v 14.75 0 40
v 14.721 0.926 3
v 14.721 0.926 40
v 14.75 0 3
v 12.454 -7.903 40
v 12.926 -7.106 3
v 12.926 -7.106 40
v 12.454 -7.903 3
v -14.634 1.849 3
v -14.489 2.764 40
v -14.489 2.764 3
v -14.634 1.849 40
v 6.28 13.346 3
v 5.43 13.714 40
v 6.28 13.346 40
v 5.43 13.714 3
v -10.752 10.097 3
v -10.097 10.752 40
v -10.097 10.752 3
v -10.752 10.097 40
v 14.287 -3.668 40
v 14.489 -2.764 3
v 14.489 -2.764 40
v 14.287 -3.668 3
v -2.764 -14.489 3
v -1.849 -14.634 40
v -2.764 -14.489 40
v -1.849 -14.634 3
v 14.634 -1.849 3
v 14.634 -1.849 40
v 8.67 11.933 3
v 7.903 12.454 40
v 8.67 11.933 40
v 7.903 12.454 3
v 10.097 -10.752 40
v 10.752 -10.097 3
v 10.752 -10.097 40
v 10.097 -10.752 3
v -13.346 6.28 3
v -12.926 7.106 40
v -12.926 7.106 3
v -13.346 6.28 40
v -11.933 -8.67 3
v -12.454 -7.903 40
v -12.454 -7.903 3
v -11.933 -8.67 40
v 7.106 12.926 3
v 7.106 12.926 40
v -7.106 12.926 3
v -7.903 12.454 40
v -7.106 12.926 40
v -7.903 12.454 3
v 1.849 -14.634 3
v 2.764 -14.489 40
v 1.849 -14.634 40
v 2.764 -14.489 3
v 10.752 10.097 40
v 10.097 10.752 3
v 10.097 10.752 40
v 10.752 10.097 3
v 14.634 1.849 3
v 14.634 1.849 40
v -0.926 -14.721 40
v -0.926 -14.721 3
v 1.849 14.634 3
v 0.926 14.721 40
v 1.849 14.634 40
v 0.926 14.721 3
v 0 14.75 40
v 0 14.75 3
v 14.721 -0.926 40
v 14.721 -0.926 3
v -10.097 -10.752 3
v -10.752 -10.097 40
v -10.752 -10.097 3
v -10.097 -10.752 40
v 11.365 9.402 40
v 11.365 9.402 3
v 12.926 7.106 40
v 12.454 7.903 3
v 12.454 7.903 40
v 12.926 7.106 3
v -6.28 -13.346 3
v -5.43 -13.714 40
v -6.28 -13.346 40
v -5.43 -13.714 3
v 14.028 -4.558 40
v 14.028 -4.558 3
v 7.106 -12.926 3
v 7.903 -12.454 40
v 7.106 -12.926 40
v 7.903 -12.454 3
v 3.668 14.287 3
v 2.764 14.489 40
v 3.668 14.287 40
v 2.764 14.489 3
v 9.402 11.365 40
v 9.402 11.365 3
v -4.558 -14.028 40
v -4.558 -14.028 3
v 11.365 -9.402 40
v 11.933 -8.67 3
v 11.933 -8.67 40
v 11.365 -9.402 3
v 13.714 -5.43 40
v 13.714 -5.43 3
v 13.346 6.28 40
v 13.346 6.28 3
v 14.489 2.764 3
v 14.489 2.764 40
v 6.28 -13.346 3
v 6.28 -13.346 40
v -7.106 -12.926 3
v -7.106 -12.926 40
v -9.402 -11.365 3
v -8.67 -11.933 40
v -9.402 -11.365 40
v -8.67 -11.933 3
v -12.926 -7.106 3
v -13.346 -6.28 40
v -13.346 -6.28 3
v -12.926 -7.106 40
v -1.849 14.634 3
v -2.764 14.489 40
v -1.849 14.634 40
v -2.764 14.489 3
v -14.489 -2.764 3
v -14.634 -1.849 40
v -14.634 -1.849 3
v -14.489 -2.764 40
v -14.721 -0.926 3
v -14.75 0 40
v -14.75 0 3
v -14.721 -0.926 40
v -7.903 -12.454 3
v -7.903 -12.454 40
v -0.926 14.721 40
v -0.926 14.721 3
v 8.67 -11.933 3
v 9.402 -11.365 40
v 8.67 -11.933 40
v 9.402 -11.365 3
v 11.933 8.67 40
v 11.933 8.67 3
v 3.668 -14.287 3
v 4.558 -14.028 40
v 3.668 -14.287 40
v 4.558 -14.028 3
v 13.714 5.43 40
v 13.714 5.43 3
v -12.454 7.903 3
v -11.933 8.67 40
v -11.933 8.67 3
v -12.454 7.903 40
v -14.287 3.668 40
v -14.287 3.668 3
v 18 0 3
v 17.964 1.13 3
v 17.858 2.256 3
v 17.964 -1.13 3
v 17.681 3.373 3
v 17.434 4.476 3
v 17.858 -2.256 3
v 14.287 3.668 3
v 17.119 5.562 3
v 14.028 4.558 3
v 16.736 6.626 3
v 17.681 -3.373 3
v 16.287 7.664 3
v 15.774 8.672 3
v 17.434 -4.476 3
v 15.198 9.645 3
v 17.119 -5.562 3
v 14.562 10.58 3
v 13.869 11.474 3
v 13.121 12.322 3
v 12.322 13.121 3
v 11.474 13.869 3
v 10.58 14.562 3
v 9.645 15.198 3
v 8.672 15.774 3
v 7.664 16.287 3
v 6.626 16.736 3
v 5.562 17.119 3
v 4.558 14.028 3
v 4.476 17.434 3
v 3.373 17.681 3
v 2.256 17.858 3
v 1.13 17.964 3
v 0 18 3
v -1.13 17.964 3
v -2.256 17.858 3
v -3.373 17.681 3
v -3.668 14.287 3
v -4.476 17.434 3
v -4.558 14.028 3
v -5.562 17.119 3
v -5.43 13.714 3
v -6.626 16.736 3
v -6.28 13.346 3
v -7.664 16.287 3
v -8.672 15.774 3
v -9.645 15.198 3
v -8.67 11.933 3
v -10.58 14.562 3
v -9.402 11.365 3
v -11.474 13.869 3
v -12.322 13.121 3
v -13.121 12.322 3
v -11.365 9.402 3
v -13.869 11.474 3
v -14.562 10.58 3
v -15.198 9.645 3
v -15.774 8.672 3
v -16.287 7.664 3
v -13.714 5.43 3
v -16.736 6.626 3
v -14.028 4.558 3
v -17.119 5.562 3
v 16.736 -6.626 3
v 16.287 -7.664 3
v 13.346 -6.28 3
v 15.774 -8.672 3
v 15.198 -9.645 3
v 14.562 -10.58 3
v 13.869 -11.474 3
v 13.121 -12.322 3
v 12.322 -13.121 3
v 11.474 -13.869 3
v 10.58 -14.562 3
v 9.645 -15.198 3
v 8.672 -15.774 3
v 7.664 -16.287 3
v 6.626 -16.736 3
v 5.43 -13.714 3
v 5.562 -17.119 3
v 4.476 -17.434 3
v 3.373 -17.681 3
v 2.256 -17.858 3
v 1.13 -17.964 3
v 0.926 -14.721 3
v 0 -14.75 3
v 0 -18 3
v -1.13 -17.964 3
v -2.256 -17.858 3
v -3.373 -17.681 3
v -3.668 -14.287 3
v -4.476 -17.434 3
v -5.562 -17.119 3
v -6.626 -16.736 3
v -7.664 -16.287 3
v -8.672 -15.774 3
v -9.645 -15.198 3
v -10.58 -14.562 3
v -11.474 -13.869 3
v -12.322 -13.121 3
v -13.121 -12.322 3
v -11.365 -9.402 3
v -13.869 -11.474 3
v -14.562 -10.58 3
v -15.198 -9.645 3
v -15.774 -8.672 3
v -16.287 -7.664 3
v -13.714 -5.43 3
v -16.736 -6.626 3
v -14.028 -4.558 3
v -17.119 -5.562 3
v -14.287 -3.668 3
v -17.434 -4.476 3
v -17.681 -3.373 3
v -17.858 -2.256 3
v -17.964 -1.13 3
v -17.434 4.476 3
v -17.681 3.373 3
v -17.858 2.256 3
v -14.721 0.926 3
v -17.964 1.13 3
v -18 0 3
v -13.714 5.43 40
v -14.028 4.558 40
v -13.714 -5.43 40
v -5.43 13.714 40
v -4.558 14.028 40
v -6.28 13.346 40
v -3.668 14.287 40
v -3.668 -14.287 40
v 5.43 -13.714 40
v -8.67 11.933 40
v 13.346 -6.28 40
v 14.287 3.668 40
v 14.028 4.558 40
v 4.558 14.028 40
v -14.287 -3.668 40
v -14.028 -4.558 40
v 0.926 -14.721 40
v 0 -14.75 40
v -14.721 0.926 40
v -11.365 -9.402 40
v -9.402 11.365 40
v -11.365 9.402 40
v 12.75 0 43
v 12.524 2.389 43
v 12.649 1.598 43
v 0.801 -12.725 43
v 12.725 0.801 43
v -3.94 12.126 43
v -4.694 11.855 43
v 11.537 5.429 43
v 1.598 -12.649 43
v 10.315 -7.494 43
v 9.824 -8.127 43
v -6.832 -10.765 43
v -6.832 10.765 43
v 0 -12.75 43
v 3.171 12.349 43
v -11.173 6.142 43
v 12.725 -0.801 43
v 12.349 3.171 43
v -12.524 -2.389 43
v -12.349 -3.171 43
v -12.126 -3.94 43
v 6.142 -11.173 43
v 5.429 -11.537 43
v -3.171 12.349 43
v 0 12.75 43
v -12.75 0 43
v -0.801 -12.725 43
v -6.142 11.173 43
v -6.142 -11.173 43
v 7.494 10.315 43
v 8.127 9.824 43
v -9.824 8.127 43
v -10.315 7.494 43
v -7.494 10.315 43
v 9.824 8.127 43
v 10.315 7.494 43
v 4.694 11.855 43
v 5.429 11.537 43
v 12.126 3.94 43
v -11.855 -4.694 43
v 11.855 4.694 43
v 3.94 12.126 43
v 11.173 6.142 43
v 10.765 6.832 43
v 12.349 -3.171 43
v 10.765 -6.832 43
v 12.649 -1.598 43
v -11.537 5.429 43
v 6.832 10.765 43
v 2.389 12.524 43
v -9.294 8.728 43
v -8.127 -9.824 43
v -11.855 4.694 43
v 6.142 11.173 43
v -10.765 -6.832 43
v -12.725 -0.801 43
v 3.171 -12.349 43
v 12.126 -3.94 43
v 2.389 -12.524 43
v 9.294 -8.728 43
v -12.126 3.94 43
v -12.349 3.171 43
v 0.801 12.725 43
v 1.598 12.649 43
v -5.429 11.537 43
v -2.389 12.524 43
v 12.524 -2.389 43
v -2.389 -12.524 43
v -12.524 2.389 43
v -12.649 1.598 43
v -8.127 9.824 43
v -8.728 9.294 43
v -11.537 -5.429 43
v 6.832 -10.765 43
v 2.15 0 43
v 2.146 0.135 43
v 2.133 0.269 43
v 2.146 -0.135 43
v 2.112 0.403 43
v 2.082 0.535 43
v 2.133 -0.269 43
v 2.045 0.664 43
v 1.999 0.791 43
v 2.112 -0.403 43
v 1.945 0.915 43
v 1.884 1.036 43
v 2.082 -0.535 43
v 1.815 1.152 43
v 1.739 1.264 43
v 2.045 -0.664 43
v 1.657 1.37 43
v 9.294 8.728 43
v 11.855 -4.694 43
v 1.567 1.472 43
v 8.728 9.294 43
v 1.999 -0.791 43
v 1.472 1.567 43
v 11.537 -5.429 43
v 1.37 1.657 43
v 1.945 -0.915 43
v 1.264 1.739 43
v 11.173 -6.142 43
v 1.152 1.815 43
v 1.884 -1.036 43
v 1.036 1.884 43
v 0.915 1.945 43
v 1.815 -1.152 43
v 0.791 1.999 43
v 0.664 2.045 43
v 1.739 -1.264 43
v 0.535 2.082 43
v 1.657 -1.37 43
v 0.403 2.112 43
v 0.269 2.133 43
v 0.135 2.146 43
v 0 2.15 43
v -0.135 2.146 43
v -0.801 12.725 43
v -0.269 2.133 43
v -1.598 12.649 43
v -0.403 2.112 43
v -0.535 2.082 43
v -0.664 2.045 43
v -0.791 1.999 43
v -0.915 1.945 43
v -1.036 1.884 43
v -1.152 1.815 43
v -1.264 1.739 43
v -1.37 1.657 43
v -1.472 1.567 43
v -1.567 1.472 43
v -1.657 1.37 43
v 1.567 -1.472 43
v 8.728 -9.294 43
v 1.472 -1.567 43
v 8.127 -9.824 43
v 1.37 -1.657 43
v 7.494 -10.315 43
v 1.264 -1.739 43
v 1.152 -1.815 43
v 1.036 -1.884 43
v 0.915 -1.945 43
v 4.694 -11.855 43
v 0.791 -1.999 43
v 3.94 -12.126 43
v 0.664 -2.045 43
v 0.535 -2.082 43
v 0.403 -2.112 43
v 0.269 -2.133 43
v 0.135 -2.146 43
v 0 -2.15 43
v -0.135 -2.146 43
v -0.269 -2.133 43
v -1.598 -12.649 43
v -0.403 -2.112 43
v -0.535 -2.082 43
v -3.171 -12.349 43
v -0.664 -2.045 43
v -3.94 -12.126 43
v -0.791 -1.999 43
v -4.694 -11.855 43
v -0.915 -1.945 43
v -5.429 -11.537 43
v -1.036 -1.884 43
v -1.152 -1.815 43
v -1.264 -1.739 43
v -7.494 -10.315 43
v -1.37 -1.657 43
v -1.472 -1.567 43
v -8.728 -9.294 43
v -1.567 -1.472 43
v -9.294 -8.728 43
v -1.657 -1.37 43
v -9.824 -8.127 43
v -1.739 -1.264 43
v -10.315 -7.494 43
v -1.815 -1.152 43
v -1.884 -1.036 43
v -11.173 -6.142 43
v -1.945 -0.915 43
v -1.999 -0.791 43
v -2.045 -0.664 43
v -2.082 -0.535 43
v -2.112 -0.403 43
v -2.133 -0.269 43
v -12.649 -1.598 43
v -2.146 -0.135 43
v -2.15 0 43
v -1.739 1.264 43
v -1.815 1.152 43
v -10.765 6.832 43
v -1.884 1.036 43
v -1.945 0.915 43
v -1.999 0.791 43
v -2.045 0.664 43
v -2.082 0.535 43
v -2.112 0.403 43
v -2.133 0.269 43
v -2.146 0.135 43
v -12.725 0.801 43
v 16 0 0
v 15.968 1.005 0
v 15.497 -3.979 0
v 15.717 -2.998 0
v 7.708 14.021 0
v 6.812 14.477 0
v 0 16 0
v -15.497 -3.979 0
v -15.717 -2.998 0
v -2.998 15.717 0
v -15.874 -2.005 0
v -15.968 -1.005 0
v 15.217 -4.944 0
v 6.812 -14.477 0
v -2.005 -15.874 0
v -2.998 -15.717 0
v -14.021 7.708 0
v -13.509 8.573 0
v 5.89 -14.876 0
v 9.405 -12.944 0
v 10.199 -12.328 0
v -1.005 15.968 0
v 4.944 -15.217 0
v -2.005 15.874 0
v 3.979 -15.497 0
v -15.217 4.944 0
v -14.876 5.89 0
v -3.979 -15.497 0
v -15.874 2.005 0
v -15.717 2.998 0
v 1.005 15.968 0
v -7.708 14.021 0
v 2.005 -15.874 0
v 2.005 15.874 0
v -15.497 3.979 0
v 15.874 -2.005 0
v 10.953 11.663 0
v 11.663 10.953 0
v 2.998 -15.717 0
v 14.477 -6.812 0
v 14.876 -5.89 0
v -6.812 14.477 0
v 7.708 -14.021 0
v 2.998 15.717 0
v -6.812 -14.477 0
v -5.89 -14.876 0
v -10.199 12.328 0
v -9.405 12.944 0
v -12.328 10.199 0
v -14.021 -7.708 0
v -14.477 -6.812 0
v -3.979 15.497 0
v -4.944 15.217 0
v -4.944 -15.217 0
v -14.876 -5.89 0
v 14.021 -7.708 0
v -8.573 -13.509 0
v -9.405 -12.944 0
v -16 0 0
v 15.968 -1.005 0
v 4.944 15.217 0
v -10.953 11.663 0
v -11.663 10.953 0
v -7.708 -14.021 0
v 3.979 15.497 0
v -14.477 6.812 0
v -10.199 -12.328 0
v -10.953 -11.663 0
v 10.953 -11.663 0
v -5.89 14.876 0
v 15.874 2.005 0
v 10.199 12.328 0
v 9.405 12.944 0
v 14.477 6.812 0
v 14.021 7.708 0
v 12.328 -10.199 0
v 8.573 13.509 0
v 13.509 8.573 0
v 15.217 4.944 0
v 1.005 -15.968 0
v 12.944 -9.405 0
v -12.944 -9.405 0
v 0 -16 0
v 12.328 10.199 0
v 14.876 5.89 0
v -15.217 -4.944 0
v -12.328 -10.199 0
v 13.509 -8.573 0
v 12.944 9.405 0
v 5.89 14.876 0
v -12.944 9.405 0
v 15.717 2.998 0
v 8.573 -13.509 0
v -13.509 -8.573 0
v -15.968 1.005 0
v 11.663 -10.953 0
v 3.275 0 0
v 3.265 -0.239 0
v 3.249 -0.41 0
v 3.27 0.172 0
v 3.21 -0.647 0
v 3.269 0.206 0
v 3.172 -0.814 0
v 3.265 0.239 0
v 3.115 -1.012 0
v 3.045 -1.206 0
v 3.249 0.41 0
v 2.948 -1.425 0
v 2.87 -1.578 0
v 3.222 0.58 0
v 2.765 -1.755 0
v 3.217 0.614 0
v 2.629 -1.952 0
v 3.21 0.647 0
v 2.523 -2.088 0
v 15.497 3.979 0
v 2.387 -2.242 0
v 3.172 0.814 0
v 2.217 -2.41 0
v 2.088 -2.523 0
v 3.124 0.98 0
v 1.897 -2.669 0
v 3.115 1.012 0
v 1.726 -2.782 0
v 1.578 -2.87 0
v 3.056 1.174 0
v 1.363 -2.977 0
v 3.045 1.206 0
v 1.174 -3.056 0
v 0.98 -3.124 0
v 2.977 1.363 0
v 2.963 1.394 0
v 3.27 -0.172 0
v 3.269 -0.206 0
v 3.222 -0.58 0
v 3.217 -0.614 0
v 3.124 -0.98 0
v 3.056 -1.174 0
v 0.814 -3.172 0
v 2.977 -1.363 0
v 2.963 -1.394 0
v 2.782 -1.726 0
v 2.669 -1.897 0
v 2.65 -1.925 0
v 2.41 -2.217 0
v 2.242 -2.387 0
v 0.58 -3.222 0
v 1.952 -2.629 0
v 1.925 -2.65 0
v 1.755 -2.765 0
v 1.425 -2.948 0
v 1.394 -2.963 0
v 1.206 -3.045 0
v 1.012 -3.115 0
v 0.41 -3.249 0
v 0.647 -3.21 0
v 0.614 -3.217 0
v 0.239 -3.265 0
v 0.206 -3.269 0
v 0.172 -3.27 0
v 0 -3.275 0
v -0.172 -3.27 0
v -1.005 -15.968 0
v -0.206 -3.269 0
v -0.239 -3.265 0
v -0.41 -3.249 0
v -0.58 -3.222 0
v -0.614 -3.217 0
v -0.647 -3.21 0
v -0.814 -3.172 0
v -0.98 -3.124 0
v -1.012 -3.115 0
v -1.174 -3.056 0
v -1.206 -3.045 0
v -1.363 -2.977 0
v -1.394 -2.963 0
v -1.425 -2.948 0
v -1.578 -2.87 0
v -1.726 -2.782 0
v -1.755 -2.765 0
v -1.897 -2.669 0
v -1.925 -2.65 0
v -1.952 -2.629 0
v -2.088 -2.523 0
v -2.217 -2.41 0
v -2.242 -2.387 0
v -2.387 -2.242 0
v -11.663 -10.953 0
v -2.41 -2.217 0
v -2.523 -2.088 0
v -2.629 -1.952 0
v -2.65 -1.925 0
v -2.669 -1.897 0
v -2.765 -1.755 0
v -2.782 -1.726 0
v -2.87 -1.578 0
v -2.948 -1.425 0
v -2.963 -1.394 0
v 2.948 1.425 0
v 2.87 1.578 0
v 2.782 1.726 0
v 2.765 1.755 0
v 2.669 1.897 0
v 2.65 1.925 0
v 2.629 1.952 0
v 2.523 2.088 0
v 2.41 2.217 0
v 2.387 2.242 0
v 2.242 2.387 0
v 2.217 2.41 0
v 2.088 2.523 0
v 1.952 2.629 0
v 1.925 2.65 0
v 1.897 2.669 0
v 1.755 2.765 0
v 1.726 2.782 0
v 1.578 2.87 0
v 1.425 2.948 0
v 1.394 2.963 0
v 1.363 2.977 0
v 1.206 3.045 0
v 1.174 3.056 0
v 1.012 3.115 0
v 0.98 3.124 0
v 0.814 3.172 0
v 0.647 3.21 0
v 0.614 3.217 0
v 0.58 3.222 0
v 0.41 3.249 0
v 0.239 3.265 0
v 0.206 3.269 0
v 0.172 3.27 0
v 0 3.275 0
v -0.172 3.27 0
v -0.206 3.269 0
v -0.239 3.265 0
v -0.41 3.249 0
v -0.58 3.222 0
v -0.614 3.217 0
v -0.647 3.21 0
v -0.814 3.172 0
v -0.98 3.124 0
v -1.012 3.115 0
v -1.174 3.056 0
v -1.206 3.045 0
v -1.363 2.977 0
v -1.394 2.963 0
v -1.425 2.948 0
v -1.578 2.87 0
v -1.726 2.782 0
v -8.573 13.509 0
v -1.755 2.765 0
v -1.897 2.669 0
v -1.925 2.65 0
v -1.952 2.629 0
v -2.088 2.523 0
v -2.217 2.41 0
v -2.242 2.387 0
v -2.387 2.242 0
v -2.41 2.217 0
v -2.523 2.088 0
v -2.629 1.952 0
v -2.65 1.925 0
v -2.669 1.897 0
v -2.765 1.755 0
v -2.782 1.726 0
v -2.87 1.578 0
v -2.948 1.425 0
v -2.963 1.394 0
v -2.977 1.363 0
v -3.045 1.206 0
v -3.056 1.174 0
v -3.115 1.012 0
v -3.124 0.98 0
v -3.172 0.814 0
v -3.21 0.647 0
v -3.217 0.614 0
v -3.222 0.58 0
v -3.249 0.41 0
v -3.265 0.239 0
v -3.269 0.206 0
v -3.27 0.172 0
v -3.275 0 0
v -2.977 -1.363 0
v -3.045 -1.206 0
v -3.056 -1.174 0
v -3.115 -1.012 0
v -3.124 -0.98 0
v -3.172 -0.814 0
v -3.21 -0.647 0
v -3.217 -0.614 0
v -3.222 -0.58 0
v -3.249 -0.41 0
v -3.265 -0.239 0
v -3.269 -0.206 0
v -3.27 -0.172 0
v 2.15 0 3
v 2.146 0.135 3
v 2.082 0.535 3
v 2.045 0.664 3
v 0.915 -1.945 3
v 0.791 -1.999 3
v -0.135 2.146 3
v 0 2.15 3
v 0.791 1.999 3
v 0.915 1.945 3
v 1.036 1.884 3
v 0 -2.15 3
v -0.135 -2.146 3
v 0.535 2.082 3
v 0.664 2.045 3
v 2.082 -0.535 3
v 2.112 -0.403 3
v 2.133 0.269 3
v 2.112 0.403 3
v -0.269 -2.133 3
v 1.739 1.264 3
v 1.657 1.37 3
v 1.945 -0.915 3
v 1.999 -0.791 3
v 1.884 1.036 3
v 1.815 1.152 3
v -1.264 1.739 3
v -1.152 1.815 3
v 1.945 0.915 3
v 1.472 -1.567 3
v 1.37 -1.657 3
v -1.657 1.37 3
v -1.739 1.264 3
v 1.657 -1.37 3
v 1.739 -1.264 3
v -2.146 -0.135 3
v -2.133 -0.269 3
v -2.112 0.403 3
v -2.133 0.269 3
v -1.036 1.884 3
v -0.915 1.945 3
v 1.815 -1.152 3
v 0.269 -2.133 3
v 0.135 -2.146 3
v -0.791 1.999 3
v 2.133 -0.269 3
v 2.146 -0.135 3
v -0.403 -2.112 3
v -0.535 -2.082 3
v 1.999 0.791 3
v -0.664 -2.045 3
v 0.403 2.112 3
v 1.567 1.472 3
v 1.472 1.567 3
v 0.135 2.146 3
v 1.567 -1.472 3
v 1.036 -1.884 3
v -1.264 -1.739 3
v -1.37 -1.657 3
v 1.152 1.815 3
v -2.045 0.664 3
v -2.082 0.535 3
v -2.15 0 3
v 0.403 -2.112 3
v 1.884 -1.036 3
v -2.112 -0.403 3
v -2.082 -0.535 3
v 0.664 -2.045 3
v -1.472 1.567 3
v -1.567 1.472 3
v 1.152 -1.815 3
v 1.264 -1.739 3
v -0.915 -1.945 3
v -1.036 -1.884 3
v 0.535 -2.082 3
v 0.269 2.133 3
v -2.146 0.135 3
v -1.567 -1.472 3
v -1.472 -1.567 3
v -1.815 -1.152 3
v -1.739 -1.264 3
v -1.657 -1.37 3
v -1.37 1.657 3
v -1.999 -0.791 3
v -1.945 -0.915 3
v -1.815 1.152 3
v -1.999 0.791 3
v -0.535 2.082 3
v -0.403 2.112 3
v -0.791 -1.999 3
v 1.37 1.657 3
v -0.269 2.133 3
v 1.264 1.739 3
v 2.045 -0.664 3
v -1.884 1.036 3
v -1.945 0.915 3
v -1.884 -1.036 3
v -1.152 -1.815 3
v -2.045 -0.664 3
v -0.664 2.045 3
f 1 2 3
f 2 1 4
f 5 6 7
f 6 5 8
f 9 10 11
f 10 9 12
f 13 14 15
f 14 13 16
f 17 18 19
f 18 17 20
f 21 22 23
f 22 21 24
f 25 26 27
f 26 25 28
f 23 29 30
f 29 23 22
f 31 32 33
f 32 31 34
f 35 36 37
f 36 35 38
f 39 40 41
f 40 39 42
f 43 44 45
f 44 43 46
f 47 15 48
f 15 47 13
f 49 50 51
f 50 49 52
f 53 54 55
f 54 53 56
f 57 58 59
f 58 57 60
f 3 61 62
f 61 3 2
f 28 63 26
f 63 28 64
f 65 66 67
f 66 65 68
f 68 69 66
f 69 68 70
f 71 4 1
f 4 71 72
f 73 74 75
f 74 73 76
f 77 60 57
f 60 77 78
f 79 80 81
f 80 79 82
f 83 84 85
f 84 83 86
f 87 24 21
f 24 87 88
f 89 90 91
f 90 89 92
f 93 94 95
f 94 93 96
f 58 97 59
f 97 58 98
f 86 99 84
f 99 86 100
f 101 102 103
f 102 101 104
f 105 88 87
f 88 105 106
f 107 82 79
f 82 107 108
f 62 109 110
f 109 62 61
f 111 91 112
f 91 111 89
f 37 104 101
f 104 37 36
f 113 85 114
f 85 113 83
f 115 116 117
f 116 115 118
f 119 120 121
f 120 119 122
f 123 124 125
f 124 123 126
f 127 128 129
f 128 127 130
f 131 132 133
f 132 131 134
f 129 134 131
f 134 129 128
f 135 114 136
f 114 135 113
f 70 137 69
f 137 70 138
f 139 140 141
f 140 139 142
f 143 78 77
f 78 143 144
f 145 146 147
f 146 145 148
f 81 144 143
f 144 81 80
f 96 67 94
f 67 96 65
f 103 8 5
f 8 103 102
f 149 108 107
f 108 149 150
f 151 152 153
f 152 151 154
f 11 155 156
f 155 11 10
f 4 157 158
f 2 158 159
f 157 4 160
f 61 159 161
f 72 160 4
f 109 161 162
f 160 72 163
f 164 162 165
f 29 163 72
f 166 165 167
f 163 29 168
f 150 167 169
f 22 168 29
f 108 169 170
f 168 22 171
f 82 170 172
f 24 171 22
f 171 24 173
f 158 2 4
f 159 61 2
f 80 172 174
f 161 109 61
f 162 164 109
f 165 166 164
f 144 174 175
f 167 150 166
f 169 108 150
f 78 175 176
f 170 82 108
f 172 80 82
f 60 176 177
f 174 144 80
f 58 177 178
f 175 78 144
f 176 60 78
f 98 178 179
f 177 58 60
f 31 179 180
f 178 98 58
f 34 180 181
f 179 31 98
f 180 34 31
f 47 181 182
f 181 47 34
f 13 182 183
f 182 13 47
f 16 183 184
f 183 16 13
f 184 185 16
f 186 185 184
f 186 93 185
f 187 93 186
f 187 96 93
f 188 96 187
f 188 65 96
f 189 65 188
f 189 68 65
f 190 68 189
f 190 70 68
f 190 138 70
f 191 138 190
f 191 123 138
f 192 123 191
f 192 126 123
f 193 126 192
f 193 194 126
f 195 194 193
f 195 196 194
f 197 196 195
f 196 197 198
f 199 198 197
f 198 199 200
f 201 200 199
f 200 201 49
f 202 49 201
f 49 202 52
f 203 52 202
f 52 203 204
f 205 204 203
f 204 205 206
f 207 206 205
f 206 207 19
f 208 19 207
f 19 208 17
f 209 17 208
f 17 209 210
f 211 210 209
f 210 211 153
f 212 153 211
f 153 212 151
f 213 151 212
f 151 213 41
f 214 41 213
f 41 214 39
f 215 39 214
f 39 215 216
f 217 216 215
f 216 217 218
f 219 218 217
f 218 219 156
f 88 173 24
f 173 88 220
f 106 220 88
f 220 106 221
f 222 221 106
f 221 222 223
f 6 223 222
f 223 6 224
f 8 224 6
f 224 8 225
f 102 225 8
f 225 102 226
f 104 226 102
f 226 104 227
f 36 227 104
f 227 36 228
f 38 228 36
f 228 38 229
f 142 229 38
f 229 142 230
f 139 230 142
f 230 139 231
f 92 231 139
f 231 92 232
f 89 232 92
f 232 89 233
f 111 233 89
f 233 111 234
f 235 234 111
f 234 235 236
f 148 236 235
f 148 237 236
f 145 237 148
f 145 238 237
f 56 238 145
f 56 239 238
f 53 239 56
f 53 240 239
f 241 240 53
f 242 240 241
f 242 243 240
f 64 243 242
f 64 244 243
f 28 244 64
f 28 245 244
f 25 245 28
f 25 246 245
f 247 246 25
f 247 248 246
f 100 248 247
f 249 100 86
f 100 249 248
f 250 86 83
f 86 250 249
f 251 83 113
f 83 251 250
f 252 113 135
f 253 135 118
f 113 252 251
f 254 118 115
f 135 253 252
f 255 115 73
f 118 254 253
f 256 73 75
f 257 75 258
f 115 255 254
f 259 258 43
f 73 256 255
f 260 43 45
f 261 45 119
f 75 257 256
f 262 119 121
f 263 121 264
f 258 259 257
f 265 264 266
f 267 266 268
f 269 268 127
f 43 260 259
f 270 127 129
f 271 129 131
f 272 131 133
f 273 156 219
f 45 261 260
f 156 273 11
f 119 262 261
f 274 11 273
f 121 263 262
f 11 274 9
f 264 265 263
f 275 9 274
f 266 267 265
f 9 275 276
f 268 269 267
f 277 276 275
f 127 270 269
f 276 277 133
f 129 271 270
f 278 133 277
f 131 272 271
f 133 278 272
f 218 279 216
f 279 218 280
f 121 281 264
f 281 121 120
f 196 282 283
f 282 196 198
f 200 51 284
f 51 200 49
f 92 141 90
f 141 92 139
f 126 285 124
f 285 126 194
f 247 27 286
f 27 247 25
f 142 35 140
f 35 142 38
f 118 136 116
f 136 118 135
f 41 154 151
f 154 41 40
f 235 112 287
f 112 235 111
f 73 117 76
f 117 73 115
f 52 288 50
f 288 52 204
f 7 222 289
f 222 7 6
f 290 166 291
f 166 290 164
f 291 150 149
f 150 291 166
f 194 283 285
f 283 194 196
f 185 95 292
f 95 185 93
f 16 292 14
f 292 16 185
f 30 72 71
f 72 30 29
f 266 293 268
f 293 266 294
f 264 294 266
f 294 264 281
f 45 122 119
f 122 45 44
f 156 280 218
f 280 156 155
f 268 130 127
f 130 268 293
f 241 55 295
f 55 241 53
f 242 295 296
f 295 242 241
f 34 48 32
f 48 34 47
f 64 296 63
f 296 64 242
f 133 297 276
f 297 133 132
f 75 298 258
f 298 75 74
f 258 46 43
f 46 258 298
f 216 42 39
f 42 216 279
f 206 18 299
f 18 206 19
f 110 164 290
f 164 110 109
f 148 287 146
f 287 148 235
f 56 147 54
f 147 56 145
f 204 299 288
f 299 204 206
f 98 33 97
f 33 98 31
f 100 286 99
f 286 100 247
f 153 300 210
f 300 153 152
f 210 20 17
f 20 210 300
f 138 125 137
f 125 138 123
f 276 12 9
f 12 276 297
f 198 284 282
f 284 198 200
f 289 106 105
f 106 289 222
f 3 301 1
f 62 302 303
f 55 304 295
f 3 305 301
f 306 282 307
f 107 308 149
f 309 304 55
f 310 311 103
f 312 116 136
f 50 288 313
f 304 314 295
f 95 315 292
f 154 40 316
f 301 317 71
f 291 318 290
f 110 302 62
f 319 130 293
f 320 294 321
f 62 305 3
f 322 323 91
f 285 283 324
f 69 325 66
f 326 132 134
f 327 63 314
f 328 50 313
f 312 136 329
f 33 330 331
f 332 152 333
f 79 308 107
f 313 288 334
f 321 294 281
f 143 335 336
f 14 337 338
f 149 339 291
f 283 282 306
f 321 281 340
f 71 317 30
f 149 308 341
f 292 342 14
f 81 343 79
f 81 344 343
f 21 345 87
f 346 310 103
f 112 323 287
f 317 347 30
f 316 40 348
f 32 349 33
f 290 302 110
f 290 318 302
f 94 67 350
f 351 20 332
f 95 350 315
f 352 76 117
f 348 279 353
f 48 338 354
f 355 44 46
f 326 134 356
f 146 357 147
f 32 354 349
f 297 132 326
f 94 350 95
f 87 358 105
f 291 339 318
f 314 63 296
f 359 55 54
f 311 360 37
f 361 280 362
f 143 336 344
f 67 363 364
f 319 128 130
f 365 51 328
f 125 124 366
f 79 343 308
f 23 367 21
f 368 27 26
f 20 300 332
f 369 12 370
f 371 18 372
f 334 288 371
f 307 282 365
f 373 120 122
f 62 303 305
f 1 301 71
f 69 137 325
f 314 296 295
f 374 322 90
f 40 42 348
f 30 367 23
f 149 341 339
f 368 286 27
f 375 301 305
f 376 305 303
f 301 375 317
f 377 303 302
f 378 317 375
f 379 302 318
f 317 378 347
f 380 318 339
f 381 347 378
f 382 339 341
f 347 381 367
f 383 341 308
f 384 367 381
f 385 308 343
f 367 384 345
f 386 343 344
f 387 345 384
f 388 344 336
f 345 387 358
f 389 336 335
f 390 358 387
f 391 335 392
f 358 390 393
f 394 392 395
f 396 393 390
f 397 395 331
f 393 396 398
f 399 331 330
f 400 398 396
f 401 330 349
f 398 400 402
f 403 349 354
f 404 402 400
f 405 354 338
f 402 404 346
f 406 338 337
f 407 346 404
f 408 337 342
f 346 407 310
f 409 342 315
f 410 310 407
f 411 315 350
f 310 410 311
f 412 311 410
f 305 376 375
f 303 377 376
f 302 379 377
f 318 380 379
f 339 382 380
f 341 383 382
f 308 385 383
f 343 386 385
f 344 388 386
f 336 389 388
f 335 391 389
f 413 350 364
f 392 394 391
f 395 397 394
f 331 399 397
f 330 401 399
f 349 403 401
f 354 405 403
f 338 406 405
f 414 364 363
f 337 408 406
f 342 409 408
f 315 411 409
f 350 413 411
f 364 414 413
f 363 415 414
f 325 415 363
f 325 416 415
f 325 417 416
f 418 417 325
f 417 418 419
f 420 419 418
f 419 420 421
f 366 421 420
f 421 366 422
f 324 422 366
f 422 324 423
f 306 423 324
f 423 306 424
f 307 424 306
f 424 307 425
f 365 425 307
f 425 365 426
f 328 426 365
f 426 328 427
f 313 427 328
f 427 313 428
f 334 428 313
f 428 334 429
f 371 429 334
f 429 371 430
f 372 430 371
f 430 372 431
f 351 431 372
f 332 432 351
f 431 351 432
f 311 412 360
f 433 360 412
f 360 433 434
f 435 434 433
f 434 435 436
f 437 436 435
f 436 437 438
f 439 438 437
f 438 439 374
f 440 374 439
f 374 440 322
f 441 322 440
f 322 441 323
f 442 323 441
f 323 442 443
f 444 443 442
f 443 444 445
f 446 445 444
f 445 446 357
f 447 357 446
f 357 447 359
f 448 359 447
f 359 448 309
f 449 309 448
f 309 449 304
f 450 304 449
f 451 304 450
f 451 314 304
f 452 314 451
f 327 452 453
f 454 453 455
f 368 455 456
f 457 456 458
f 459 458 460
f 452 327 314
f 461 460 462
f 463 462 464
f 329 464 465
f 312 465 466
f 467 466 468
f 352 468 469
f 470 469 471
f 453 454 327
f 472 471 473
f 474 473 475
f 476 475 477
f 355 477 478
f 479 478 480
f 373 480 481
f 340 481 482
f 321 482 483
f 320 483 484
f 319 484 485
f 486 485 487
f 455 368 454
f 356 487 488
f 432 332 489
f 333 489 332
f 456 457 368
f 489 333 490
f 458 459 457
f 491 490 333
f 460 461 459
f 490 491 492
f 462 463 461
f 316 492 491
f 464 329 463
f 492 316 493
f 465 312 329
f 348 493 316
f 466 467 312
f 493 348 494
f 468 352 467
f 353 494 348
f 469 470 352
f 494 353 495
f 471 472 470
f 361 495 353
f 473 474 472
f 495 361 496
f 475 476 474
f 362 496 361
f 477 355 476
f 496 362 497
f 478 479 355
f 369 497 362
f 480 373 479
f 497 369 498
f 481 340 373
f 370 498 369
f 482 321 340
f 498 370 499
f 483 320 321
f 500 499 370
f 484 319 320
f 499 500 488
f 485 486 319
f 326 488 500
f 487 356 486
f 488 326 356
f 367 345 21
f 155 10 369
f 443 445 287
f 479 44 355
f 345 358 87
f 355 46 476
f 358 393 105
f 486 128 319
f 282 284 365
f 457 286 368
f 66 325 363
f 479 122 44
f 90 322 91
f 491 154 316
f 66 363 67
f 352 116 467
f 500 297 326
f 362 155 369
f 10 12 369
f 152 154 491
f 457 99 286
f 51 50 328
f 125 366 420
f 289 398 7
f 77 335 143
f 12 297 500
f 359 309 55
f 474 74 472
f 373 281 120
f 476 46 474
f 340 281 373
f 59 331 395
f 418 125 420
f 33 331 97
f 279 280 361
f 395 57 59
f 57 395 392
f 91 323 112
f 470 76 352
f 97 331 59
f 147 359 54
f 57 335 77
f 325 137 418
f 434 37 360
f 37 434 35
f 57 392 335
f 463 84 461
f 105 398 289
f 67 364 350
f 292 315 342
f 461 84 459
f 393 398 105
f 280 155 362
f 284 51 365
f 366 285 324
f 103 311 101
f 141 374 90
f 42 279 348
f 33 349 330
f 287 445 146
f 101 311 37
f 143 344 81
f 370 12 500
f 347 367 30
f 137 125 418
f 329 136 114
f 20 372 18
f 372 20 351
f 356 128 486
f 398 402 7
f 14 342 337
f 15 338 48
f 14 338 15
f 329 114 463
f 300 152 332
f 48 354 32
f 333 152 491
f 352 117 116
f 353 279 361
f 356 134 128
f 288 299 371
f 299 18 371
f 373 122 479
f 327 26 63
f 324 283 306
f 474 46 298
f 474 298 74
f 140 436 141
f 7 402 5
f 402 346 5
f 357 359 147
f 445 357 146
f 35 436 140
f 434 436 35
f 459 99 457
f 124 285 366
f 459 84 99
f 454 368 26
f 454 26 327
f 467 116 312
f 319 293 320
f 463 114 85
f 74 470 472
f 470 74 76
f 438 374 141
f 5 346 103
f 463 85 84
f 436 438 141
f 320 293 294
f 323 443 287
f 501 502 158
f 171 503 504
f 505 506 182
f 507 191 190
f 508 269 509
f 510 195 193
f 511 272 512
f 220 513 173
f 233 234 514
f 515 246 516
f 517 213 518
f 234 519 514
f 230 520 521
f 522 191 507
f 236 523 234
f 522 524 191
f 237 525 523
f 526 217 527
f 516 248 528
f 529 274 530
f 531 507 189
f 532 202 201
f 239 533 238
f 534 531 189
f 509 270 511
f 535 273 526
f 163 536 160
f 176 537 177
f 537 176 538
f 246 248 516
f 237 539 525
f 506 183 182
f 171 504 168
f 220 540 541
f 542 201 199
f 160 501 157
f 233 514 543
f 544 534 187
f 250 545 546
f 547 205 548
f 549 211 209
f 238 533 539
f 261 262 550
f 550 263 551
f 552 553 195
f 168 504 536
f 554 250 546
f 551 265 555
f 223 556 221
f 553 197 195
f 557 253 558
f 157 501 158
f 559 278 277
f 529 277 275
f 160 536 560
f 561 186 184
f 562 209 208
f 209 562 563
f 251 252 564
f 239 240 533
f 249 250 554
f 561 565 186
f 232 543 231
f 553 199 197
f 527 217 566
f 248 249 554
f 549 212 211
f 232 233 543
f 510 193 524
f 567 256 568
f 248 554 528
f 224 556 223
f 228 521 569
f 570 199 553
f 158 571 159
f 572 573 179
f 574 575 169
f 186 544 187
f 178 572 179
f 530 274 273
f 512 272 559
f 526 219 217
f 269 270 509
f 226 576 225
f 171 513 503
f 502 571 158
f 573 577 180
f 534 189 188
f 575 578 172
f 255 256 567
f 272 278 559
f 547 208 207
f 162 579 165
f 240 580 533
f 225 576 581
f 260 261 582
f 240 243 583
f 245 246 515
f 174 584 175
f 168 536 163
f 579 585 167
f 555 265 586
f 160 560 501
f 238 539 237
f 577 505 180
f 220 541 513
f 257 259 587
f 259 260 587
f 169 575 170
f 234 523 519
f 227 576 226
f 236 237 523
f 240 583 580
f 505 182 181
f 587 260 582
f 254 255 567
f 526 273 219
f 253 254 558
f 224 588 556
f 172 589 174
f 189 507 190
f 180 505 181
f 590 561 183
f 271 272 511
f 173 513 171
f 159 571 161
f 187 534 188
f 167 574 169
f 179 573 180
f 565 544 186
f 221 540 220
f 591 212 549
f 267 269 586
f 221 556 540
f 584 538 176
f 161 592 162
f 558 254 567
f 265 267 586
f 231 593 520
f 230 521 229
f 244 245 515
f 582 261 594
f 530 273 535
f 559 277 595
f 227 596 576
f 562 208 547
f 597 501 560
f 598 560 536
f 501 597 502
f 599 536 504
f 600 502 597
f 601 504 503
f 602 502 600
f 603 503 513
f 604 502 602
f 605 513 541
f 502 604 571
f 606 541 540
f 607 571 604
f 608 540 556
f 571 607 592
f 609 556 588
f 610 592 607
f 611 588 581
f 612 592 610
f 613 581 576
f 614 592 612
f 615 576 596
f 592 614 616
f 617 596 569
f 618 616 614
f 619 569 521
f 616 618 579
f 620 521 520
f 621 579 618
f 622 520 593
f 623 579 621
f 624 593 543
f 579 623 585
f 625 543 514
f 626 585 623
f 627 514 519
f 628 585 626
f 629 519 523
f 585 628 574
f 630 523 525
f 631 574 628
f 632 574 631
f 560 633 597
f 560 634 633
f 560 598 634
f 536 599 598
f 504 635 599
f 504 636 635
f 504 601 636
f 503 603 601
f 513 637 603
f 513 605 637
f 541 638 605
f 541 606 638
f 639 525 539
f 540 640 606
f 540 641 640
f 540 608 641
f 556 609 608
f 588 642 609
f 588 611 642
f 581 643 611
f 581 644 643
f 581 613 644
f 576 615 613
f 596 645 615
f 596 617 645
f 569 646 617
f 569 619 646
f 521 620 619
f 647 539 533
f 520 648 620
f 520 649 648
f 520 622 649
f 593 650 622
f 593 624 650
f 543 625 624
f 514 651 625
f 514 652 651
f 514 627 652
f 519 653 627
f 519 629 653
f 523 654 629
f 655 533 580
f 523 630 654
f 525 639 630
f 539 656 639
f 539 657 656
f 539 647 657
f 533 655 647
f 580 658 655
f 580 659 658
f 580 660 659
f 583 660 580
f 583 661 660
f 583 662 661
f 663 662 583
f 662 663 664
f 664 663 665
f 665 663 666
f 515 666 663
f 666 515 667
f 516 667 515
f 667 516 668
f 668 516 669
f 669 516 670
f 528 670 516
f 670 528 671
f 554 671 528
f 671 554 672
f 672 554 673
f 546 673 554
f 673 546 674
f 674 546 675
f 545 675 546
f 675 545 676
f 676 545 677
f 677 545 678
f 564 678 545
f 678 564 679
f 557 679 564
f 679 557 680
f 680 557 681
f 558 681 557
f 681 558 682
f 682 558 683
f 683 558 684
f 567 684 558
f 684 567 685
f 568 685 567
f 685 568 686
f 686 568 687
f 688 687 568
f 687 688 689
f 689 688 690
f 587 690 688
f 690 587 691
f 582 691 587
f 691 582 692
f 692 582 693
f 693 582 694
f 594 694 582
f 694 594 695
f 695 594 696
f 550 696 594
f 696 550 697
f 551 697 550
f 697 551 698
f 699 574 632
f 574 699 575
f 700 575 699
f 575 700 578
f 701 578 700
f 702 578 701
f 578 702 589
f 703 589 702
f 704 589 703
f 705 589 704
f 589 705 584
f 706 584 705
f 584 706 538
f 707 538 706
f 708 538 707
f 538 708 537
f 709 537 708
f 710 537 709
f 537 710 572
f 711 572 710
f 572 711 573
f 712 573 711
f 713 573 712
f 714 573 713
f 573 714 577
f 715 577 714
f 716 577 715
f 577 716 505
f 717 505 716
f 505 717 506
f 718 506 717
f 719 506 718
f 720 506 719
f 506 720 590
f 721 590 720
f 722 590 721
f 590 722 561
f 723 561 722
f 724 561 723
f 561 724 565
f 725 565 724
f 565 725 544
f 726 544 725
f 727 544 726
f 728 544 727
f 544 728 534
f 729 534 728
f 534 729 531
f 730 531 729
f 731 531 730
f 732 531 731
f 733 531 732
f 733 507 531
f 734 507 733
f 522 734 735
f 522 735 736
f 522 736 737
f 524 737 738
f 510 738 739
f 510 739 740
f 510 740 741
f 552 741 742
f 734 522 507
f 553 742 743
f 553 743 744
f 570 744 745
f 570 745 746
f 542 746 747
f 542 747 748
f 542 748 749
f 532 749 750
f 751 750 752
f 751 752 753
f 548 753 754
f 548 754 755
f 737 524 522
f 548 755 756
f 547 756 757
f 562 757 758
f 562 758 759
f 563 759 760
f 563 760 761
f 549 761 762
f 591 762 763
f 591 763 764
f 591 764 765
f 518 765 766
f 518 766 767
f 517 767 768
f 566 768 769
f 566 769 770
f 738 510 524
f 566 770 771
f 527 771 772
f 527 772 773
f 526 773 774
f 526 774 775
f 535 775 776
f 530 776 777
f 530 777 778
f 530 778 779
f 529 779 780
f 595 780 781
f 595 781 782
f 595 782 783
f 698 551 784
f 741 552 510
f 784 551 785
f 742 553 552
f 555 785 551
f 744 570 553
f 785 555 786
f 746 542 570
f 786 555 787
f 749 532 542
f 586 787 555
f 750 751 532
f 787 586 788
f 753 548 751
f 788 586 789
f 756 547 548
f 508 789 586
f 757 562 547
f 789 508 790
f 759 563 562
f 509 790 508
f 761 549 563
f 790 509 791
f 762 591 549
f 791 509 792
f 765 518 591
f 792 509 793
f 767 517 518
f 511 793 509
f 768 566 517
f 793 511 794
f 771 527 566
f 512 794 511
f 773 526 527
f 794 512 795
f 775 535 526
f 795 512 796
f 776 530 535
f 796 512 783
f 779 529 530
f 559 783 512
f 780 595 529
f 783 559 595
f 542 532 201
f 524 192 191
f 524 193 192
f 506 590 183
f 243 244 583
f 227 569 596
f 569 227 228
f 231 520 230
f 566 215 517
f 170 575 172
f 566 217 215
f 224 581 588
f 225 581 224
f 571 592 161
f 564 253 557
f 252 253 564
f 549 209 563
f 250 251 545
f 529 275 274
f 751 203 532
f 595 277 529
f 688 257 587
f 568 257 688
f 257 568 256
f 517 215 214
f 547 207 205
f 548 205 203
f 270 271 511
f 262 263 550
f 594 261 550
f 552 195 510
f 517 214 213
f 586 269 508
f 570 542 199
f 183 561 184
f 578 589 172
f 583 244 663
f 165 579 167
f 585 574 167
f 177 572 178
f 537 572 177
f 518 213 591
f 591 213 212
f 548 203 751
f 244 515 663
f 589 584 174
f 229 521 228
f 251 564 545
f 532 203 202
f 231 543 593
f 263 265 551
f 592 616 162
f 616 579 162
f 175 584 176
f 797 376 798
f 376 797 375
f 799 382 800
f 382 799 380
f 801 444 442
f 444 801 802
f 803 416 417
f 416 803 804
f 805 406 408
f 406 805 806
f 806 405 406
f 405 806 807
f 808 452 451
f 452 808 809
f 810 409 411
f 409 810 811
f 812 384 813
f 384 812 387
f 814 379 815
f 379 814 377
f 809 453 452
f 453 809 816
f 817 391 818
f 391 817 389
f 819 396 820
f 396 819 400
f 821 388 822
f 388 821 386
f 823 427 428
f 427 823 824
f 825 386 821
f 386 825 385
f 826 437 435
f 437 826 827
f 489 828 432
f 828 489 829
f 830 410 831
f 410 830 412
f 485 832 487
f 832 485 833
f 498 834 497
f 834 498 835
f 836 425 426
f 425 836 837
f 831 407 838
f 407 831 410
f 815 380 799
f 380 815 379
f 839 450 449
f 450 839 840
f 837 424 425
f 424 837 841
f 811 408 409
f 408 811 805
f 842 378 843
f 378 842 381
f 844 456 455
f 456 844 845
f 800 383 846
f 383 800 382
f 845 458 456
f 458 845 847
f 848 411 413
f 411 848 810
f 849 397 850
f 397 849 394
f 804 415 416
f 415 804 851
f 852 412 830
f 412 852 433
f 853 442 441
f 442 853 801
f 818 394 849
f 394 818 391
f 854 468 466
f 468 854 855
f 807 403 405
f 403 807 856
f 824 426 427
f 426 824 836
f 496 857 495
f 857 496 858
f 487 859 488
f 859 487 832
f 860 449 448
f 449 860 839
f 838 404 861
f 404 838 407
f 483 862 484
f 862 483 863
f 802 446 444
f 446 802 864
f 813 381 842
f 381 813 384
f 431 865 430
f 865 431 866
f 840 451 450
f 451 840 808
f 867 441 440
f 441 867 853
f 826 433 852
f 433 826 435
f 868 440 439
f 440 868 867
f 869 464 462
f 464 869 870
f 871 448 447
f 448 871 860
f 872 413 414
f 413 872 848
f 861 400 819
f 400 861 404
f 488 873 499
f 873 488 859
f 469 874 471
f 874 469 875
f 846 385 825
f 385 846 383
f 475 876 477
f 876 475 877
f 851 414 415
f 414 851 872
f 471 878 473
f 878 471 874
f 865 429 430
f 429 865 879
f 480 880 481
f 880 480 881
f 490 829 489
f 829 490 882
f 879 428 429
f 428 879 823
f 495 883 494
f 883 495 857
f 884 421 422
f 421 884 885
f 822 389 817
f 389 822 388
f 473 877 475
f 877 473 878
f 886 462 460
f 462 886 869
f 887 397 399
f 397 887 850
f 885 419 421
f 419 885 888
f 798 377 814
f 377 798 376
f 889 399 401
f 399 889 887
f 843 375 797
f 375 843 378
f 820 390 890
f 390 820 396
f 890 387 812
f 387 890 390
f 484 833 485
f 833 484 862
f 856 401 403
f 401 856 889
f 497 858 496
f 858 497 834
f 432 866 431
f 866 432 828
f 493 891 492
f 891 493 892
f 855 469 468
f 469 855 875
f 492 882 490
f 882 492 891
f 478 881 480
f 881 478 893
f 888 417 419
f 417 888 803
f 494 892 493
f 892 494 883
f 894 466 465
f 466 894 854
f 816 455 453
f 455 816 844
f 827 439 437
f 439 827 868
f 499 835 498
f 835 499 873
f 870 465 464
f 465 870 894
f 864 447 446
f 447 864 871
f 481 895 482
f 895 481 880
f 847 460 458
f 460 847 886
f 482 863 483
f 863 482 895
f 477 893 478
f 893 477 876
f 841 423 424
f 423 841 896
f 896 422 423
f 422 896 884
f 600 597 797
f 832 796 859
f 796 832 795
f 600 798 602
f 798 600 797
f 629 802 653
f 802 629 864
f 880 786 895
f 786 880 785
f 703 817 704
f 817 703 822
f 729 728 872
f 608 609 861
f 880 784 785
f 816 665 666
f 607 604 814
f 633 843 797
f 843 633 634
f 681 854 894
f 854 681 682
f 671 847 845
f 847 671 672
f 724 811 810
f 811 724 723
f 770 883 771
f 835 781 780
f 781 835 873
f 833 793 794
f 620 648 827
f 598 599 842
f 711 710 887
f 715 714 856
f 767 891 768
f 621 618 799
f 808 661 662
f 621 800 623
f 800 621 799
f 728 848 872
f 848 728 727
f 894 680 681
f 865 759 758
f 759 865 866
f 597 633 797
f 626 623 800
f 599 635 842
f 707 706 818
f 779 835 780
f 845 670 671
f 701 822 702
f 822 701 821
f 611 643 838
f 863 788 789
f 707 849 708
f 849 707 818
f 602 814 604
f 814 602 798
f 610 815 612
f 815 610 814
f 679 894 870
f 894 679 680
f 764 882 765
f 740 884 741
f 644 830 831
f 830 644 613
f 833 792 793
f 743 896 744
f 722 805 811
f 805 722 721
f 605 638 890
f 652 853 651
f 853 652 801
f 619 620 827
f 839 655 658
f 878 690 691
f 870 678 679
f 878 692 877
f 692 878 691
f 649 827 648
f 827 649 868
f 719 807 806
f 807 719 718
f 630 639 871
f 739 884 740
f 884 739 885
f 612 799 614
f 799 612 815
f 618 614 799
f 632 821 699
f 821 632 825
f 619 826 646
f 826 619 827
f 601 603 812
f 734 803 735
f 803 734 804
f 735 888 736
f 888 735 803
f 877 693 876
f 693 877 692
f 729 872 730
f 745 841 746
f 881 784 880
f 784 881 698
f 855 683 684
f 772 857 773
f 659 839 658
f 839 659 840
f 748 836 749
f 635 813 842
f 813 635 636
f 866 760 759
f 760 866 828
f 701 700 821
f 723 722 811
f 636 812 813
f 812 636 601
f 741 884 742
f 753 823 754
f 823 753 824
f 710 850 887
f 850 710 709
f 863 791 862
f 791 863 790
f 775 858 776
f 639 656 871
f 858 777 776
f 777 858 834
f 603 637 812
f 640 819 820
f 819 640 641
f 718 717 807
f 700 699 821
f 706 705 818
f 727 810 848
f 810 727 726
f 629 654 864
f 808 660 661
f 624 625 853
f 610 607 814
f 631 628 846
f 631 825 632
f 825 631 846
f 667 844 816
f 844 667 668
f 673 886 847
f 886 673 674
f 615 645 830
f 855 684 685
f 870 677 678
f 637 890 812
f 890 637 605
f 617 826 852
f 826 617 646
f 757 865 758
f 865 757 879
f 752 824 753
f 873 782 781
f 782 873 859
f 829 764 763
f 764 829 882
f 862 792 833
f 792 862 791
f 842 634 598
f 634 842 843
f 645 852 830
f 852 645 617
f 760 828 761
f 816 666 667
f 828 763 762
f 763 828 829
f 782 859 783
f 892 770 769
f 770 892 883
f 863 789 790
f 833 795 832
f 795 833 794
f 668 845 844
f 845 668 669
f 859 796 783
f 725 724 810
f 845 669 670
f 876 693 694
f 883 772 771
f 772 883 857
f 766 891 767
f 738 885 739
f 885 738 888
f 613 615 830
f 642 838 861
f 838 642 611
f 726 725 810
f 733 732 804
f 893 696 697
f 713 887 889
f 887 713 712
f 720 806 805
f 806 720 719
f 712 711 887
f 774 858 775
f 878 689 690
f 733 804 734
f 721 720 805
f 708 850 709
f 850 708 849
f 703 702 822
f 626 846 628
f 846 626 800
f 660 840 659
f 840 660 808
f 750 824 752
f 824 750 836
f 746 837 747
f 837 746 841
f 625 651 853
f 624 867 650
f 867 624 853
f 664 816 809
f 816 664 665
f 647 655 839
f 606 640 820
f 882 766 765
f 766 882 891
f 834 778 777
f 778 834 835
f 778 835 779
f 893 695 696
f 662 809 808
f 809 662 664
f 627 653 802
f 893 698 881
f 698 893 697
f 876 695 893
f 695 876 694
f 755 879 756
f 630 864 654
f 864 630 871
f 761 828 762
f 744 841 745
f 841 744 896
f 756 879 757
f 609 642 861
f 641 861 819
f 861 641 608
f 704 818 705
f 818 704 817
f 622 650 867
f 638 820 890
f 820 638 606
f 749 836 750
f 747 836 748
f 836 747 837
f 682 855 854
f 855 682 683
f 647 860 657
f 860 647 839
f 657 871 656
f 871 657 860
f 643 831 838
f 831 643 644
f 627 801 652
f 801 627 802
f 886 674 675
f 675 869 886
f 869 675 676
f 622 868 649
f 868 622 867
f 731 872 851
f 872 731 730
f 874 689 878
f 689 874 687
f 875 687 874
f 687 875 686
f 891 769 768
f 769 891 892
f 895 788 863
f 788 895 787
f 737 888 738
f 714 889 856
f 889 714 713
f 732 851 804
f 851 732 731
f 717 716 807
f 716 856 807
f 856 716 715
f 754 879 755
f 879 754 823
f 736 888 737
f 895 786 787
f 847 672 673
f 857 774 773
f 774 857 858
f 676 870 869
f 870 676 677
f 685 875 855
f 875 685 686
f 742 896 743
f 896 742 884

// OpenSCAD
$fn = 100;
_height = 40;

difference() {
    union() {
        // Hauptkörper
        translate([0, 0, 3]) 
        cylinder(h=_height - 3, d=29.5);

        // Untere Fase 3mm
        translate([0, 0, _height])
        cylinder(h = 3, d1=29.5, d2=25.5); 
        
        // Obere Abdeckung
        cylinder(h = 3, d1=32, d2=36);
    }
    // Aussparung unten
    translate([0, 0, -1]) 
    cylinder(h=_height + 3 + 2, d=4.3);

    // Bohrung
    color("red")
    translate([0, 0, -1]) 
    cylinder(h=4, d2=4.3, d1=7.3);

}
